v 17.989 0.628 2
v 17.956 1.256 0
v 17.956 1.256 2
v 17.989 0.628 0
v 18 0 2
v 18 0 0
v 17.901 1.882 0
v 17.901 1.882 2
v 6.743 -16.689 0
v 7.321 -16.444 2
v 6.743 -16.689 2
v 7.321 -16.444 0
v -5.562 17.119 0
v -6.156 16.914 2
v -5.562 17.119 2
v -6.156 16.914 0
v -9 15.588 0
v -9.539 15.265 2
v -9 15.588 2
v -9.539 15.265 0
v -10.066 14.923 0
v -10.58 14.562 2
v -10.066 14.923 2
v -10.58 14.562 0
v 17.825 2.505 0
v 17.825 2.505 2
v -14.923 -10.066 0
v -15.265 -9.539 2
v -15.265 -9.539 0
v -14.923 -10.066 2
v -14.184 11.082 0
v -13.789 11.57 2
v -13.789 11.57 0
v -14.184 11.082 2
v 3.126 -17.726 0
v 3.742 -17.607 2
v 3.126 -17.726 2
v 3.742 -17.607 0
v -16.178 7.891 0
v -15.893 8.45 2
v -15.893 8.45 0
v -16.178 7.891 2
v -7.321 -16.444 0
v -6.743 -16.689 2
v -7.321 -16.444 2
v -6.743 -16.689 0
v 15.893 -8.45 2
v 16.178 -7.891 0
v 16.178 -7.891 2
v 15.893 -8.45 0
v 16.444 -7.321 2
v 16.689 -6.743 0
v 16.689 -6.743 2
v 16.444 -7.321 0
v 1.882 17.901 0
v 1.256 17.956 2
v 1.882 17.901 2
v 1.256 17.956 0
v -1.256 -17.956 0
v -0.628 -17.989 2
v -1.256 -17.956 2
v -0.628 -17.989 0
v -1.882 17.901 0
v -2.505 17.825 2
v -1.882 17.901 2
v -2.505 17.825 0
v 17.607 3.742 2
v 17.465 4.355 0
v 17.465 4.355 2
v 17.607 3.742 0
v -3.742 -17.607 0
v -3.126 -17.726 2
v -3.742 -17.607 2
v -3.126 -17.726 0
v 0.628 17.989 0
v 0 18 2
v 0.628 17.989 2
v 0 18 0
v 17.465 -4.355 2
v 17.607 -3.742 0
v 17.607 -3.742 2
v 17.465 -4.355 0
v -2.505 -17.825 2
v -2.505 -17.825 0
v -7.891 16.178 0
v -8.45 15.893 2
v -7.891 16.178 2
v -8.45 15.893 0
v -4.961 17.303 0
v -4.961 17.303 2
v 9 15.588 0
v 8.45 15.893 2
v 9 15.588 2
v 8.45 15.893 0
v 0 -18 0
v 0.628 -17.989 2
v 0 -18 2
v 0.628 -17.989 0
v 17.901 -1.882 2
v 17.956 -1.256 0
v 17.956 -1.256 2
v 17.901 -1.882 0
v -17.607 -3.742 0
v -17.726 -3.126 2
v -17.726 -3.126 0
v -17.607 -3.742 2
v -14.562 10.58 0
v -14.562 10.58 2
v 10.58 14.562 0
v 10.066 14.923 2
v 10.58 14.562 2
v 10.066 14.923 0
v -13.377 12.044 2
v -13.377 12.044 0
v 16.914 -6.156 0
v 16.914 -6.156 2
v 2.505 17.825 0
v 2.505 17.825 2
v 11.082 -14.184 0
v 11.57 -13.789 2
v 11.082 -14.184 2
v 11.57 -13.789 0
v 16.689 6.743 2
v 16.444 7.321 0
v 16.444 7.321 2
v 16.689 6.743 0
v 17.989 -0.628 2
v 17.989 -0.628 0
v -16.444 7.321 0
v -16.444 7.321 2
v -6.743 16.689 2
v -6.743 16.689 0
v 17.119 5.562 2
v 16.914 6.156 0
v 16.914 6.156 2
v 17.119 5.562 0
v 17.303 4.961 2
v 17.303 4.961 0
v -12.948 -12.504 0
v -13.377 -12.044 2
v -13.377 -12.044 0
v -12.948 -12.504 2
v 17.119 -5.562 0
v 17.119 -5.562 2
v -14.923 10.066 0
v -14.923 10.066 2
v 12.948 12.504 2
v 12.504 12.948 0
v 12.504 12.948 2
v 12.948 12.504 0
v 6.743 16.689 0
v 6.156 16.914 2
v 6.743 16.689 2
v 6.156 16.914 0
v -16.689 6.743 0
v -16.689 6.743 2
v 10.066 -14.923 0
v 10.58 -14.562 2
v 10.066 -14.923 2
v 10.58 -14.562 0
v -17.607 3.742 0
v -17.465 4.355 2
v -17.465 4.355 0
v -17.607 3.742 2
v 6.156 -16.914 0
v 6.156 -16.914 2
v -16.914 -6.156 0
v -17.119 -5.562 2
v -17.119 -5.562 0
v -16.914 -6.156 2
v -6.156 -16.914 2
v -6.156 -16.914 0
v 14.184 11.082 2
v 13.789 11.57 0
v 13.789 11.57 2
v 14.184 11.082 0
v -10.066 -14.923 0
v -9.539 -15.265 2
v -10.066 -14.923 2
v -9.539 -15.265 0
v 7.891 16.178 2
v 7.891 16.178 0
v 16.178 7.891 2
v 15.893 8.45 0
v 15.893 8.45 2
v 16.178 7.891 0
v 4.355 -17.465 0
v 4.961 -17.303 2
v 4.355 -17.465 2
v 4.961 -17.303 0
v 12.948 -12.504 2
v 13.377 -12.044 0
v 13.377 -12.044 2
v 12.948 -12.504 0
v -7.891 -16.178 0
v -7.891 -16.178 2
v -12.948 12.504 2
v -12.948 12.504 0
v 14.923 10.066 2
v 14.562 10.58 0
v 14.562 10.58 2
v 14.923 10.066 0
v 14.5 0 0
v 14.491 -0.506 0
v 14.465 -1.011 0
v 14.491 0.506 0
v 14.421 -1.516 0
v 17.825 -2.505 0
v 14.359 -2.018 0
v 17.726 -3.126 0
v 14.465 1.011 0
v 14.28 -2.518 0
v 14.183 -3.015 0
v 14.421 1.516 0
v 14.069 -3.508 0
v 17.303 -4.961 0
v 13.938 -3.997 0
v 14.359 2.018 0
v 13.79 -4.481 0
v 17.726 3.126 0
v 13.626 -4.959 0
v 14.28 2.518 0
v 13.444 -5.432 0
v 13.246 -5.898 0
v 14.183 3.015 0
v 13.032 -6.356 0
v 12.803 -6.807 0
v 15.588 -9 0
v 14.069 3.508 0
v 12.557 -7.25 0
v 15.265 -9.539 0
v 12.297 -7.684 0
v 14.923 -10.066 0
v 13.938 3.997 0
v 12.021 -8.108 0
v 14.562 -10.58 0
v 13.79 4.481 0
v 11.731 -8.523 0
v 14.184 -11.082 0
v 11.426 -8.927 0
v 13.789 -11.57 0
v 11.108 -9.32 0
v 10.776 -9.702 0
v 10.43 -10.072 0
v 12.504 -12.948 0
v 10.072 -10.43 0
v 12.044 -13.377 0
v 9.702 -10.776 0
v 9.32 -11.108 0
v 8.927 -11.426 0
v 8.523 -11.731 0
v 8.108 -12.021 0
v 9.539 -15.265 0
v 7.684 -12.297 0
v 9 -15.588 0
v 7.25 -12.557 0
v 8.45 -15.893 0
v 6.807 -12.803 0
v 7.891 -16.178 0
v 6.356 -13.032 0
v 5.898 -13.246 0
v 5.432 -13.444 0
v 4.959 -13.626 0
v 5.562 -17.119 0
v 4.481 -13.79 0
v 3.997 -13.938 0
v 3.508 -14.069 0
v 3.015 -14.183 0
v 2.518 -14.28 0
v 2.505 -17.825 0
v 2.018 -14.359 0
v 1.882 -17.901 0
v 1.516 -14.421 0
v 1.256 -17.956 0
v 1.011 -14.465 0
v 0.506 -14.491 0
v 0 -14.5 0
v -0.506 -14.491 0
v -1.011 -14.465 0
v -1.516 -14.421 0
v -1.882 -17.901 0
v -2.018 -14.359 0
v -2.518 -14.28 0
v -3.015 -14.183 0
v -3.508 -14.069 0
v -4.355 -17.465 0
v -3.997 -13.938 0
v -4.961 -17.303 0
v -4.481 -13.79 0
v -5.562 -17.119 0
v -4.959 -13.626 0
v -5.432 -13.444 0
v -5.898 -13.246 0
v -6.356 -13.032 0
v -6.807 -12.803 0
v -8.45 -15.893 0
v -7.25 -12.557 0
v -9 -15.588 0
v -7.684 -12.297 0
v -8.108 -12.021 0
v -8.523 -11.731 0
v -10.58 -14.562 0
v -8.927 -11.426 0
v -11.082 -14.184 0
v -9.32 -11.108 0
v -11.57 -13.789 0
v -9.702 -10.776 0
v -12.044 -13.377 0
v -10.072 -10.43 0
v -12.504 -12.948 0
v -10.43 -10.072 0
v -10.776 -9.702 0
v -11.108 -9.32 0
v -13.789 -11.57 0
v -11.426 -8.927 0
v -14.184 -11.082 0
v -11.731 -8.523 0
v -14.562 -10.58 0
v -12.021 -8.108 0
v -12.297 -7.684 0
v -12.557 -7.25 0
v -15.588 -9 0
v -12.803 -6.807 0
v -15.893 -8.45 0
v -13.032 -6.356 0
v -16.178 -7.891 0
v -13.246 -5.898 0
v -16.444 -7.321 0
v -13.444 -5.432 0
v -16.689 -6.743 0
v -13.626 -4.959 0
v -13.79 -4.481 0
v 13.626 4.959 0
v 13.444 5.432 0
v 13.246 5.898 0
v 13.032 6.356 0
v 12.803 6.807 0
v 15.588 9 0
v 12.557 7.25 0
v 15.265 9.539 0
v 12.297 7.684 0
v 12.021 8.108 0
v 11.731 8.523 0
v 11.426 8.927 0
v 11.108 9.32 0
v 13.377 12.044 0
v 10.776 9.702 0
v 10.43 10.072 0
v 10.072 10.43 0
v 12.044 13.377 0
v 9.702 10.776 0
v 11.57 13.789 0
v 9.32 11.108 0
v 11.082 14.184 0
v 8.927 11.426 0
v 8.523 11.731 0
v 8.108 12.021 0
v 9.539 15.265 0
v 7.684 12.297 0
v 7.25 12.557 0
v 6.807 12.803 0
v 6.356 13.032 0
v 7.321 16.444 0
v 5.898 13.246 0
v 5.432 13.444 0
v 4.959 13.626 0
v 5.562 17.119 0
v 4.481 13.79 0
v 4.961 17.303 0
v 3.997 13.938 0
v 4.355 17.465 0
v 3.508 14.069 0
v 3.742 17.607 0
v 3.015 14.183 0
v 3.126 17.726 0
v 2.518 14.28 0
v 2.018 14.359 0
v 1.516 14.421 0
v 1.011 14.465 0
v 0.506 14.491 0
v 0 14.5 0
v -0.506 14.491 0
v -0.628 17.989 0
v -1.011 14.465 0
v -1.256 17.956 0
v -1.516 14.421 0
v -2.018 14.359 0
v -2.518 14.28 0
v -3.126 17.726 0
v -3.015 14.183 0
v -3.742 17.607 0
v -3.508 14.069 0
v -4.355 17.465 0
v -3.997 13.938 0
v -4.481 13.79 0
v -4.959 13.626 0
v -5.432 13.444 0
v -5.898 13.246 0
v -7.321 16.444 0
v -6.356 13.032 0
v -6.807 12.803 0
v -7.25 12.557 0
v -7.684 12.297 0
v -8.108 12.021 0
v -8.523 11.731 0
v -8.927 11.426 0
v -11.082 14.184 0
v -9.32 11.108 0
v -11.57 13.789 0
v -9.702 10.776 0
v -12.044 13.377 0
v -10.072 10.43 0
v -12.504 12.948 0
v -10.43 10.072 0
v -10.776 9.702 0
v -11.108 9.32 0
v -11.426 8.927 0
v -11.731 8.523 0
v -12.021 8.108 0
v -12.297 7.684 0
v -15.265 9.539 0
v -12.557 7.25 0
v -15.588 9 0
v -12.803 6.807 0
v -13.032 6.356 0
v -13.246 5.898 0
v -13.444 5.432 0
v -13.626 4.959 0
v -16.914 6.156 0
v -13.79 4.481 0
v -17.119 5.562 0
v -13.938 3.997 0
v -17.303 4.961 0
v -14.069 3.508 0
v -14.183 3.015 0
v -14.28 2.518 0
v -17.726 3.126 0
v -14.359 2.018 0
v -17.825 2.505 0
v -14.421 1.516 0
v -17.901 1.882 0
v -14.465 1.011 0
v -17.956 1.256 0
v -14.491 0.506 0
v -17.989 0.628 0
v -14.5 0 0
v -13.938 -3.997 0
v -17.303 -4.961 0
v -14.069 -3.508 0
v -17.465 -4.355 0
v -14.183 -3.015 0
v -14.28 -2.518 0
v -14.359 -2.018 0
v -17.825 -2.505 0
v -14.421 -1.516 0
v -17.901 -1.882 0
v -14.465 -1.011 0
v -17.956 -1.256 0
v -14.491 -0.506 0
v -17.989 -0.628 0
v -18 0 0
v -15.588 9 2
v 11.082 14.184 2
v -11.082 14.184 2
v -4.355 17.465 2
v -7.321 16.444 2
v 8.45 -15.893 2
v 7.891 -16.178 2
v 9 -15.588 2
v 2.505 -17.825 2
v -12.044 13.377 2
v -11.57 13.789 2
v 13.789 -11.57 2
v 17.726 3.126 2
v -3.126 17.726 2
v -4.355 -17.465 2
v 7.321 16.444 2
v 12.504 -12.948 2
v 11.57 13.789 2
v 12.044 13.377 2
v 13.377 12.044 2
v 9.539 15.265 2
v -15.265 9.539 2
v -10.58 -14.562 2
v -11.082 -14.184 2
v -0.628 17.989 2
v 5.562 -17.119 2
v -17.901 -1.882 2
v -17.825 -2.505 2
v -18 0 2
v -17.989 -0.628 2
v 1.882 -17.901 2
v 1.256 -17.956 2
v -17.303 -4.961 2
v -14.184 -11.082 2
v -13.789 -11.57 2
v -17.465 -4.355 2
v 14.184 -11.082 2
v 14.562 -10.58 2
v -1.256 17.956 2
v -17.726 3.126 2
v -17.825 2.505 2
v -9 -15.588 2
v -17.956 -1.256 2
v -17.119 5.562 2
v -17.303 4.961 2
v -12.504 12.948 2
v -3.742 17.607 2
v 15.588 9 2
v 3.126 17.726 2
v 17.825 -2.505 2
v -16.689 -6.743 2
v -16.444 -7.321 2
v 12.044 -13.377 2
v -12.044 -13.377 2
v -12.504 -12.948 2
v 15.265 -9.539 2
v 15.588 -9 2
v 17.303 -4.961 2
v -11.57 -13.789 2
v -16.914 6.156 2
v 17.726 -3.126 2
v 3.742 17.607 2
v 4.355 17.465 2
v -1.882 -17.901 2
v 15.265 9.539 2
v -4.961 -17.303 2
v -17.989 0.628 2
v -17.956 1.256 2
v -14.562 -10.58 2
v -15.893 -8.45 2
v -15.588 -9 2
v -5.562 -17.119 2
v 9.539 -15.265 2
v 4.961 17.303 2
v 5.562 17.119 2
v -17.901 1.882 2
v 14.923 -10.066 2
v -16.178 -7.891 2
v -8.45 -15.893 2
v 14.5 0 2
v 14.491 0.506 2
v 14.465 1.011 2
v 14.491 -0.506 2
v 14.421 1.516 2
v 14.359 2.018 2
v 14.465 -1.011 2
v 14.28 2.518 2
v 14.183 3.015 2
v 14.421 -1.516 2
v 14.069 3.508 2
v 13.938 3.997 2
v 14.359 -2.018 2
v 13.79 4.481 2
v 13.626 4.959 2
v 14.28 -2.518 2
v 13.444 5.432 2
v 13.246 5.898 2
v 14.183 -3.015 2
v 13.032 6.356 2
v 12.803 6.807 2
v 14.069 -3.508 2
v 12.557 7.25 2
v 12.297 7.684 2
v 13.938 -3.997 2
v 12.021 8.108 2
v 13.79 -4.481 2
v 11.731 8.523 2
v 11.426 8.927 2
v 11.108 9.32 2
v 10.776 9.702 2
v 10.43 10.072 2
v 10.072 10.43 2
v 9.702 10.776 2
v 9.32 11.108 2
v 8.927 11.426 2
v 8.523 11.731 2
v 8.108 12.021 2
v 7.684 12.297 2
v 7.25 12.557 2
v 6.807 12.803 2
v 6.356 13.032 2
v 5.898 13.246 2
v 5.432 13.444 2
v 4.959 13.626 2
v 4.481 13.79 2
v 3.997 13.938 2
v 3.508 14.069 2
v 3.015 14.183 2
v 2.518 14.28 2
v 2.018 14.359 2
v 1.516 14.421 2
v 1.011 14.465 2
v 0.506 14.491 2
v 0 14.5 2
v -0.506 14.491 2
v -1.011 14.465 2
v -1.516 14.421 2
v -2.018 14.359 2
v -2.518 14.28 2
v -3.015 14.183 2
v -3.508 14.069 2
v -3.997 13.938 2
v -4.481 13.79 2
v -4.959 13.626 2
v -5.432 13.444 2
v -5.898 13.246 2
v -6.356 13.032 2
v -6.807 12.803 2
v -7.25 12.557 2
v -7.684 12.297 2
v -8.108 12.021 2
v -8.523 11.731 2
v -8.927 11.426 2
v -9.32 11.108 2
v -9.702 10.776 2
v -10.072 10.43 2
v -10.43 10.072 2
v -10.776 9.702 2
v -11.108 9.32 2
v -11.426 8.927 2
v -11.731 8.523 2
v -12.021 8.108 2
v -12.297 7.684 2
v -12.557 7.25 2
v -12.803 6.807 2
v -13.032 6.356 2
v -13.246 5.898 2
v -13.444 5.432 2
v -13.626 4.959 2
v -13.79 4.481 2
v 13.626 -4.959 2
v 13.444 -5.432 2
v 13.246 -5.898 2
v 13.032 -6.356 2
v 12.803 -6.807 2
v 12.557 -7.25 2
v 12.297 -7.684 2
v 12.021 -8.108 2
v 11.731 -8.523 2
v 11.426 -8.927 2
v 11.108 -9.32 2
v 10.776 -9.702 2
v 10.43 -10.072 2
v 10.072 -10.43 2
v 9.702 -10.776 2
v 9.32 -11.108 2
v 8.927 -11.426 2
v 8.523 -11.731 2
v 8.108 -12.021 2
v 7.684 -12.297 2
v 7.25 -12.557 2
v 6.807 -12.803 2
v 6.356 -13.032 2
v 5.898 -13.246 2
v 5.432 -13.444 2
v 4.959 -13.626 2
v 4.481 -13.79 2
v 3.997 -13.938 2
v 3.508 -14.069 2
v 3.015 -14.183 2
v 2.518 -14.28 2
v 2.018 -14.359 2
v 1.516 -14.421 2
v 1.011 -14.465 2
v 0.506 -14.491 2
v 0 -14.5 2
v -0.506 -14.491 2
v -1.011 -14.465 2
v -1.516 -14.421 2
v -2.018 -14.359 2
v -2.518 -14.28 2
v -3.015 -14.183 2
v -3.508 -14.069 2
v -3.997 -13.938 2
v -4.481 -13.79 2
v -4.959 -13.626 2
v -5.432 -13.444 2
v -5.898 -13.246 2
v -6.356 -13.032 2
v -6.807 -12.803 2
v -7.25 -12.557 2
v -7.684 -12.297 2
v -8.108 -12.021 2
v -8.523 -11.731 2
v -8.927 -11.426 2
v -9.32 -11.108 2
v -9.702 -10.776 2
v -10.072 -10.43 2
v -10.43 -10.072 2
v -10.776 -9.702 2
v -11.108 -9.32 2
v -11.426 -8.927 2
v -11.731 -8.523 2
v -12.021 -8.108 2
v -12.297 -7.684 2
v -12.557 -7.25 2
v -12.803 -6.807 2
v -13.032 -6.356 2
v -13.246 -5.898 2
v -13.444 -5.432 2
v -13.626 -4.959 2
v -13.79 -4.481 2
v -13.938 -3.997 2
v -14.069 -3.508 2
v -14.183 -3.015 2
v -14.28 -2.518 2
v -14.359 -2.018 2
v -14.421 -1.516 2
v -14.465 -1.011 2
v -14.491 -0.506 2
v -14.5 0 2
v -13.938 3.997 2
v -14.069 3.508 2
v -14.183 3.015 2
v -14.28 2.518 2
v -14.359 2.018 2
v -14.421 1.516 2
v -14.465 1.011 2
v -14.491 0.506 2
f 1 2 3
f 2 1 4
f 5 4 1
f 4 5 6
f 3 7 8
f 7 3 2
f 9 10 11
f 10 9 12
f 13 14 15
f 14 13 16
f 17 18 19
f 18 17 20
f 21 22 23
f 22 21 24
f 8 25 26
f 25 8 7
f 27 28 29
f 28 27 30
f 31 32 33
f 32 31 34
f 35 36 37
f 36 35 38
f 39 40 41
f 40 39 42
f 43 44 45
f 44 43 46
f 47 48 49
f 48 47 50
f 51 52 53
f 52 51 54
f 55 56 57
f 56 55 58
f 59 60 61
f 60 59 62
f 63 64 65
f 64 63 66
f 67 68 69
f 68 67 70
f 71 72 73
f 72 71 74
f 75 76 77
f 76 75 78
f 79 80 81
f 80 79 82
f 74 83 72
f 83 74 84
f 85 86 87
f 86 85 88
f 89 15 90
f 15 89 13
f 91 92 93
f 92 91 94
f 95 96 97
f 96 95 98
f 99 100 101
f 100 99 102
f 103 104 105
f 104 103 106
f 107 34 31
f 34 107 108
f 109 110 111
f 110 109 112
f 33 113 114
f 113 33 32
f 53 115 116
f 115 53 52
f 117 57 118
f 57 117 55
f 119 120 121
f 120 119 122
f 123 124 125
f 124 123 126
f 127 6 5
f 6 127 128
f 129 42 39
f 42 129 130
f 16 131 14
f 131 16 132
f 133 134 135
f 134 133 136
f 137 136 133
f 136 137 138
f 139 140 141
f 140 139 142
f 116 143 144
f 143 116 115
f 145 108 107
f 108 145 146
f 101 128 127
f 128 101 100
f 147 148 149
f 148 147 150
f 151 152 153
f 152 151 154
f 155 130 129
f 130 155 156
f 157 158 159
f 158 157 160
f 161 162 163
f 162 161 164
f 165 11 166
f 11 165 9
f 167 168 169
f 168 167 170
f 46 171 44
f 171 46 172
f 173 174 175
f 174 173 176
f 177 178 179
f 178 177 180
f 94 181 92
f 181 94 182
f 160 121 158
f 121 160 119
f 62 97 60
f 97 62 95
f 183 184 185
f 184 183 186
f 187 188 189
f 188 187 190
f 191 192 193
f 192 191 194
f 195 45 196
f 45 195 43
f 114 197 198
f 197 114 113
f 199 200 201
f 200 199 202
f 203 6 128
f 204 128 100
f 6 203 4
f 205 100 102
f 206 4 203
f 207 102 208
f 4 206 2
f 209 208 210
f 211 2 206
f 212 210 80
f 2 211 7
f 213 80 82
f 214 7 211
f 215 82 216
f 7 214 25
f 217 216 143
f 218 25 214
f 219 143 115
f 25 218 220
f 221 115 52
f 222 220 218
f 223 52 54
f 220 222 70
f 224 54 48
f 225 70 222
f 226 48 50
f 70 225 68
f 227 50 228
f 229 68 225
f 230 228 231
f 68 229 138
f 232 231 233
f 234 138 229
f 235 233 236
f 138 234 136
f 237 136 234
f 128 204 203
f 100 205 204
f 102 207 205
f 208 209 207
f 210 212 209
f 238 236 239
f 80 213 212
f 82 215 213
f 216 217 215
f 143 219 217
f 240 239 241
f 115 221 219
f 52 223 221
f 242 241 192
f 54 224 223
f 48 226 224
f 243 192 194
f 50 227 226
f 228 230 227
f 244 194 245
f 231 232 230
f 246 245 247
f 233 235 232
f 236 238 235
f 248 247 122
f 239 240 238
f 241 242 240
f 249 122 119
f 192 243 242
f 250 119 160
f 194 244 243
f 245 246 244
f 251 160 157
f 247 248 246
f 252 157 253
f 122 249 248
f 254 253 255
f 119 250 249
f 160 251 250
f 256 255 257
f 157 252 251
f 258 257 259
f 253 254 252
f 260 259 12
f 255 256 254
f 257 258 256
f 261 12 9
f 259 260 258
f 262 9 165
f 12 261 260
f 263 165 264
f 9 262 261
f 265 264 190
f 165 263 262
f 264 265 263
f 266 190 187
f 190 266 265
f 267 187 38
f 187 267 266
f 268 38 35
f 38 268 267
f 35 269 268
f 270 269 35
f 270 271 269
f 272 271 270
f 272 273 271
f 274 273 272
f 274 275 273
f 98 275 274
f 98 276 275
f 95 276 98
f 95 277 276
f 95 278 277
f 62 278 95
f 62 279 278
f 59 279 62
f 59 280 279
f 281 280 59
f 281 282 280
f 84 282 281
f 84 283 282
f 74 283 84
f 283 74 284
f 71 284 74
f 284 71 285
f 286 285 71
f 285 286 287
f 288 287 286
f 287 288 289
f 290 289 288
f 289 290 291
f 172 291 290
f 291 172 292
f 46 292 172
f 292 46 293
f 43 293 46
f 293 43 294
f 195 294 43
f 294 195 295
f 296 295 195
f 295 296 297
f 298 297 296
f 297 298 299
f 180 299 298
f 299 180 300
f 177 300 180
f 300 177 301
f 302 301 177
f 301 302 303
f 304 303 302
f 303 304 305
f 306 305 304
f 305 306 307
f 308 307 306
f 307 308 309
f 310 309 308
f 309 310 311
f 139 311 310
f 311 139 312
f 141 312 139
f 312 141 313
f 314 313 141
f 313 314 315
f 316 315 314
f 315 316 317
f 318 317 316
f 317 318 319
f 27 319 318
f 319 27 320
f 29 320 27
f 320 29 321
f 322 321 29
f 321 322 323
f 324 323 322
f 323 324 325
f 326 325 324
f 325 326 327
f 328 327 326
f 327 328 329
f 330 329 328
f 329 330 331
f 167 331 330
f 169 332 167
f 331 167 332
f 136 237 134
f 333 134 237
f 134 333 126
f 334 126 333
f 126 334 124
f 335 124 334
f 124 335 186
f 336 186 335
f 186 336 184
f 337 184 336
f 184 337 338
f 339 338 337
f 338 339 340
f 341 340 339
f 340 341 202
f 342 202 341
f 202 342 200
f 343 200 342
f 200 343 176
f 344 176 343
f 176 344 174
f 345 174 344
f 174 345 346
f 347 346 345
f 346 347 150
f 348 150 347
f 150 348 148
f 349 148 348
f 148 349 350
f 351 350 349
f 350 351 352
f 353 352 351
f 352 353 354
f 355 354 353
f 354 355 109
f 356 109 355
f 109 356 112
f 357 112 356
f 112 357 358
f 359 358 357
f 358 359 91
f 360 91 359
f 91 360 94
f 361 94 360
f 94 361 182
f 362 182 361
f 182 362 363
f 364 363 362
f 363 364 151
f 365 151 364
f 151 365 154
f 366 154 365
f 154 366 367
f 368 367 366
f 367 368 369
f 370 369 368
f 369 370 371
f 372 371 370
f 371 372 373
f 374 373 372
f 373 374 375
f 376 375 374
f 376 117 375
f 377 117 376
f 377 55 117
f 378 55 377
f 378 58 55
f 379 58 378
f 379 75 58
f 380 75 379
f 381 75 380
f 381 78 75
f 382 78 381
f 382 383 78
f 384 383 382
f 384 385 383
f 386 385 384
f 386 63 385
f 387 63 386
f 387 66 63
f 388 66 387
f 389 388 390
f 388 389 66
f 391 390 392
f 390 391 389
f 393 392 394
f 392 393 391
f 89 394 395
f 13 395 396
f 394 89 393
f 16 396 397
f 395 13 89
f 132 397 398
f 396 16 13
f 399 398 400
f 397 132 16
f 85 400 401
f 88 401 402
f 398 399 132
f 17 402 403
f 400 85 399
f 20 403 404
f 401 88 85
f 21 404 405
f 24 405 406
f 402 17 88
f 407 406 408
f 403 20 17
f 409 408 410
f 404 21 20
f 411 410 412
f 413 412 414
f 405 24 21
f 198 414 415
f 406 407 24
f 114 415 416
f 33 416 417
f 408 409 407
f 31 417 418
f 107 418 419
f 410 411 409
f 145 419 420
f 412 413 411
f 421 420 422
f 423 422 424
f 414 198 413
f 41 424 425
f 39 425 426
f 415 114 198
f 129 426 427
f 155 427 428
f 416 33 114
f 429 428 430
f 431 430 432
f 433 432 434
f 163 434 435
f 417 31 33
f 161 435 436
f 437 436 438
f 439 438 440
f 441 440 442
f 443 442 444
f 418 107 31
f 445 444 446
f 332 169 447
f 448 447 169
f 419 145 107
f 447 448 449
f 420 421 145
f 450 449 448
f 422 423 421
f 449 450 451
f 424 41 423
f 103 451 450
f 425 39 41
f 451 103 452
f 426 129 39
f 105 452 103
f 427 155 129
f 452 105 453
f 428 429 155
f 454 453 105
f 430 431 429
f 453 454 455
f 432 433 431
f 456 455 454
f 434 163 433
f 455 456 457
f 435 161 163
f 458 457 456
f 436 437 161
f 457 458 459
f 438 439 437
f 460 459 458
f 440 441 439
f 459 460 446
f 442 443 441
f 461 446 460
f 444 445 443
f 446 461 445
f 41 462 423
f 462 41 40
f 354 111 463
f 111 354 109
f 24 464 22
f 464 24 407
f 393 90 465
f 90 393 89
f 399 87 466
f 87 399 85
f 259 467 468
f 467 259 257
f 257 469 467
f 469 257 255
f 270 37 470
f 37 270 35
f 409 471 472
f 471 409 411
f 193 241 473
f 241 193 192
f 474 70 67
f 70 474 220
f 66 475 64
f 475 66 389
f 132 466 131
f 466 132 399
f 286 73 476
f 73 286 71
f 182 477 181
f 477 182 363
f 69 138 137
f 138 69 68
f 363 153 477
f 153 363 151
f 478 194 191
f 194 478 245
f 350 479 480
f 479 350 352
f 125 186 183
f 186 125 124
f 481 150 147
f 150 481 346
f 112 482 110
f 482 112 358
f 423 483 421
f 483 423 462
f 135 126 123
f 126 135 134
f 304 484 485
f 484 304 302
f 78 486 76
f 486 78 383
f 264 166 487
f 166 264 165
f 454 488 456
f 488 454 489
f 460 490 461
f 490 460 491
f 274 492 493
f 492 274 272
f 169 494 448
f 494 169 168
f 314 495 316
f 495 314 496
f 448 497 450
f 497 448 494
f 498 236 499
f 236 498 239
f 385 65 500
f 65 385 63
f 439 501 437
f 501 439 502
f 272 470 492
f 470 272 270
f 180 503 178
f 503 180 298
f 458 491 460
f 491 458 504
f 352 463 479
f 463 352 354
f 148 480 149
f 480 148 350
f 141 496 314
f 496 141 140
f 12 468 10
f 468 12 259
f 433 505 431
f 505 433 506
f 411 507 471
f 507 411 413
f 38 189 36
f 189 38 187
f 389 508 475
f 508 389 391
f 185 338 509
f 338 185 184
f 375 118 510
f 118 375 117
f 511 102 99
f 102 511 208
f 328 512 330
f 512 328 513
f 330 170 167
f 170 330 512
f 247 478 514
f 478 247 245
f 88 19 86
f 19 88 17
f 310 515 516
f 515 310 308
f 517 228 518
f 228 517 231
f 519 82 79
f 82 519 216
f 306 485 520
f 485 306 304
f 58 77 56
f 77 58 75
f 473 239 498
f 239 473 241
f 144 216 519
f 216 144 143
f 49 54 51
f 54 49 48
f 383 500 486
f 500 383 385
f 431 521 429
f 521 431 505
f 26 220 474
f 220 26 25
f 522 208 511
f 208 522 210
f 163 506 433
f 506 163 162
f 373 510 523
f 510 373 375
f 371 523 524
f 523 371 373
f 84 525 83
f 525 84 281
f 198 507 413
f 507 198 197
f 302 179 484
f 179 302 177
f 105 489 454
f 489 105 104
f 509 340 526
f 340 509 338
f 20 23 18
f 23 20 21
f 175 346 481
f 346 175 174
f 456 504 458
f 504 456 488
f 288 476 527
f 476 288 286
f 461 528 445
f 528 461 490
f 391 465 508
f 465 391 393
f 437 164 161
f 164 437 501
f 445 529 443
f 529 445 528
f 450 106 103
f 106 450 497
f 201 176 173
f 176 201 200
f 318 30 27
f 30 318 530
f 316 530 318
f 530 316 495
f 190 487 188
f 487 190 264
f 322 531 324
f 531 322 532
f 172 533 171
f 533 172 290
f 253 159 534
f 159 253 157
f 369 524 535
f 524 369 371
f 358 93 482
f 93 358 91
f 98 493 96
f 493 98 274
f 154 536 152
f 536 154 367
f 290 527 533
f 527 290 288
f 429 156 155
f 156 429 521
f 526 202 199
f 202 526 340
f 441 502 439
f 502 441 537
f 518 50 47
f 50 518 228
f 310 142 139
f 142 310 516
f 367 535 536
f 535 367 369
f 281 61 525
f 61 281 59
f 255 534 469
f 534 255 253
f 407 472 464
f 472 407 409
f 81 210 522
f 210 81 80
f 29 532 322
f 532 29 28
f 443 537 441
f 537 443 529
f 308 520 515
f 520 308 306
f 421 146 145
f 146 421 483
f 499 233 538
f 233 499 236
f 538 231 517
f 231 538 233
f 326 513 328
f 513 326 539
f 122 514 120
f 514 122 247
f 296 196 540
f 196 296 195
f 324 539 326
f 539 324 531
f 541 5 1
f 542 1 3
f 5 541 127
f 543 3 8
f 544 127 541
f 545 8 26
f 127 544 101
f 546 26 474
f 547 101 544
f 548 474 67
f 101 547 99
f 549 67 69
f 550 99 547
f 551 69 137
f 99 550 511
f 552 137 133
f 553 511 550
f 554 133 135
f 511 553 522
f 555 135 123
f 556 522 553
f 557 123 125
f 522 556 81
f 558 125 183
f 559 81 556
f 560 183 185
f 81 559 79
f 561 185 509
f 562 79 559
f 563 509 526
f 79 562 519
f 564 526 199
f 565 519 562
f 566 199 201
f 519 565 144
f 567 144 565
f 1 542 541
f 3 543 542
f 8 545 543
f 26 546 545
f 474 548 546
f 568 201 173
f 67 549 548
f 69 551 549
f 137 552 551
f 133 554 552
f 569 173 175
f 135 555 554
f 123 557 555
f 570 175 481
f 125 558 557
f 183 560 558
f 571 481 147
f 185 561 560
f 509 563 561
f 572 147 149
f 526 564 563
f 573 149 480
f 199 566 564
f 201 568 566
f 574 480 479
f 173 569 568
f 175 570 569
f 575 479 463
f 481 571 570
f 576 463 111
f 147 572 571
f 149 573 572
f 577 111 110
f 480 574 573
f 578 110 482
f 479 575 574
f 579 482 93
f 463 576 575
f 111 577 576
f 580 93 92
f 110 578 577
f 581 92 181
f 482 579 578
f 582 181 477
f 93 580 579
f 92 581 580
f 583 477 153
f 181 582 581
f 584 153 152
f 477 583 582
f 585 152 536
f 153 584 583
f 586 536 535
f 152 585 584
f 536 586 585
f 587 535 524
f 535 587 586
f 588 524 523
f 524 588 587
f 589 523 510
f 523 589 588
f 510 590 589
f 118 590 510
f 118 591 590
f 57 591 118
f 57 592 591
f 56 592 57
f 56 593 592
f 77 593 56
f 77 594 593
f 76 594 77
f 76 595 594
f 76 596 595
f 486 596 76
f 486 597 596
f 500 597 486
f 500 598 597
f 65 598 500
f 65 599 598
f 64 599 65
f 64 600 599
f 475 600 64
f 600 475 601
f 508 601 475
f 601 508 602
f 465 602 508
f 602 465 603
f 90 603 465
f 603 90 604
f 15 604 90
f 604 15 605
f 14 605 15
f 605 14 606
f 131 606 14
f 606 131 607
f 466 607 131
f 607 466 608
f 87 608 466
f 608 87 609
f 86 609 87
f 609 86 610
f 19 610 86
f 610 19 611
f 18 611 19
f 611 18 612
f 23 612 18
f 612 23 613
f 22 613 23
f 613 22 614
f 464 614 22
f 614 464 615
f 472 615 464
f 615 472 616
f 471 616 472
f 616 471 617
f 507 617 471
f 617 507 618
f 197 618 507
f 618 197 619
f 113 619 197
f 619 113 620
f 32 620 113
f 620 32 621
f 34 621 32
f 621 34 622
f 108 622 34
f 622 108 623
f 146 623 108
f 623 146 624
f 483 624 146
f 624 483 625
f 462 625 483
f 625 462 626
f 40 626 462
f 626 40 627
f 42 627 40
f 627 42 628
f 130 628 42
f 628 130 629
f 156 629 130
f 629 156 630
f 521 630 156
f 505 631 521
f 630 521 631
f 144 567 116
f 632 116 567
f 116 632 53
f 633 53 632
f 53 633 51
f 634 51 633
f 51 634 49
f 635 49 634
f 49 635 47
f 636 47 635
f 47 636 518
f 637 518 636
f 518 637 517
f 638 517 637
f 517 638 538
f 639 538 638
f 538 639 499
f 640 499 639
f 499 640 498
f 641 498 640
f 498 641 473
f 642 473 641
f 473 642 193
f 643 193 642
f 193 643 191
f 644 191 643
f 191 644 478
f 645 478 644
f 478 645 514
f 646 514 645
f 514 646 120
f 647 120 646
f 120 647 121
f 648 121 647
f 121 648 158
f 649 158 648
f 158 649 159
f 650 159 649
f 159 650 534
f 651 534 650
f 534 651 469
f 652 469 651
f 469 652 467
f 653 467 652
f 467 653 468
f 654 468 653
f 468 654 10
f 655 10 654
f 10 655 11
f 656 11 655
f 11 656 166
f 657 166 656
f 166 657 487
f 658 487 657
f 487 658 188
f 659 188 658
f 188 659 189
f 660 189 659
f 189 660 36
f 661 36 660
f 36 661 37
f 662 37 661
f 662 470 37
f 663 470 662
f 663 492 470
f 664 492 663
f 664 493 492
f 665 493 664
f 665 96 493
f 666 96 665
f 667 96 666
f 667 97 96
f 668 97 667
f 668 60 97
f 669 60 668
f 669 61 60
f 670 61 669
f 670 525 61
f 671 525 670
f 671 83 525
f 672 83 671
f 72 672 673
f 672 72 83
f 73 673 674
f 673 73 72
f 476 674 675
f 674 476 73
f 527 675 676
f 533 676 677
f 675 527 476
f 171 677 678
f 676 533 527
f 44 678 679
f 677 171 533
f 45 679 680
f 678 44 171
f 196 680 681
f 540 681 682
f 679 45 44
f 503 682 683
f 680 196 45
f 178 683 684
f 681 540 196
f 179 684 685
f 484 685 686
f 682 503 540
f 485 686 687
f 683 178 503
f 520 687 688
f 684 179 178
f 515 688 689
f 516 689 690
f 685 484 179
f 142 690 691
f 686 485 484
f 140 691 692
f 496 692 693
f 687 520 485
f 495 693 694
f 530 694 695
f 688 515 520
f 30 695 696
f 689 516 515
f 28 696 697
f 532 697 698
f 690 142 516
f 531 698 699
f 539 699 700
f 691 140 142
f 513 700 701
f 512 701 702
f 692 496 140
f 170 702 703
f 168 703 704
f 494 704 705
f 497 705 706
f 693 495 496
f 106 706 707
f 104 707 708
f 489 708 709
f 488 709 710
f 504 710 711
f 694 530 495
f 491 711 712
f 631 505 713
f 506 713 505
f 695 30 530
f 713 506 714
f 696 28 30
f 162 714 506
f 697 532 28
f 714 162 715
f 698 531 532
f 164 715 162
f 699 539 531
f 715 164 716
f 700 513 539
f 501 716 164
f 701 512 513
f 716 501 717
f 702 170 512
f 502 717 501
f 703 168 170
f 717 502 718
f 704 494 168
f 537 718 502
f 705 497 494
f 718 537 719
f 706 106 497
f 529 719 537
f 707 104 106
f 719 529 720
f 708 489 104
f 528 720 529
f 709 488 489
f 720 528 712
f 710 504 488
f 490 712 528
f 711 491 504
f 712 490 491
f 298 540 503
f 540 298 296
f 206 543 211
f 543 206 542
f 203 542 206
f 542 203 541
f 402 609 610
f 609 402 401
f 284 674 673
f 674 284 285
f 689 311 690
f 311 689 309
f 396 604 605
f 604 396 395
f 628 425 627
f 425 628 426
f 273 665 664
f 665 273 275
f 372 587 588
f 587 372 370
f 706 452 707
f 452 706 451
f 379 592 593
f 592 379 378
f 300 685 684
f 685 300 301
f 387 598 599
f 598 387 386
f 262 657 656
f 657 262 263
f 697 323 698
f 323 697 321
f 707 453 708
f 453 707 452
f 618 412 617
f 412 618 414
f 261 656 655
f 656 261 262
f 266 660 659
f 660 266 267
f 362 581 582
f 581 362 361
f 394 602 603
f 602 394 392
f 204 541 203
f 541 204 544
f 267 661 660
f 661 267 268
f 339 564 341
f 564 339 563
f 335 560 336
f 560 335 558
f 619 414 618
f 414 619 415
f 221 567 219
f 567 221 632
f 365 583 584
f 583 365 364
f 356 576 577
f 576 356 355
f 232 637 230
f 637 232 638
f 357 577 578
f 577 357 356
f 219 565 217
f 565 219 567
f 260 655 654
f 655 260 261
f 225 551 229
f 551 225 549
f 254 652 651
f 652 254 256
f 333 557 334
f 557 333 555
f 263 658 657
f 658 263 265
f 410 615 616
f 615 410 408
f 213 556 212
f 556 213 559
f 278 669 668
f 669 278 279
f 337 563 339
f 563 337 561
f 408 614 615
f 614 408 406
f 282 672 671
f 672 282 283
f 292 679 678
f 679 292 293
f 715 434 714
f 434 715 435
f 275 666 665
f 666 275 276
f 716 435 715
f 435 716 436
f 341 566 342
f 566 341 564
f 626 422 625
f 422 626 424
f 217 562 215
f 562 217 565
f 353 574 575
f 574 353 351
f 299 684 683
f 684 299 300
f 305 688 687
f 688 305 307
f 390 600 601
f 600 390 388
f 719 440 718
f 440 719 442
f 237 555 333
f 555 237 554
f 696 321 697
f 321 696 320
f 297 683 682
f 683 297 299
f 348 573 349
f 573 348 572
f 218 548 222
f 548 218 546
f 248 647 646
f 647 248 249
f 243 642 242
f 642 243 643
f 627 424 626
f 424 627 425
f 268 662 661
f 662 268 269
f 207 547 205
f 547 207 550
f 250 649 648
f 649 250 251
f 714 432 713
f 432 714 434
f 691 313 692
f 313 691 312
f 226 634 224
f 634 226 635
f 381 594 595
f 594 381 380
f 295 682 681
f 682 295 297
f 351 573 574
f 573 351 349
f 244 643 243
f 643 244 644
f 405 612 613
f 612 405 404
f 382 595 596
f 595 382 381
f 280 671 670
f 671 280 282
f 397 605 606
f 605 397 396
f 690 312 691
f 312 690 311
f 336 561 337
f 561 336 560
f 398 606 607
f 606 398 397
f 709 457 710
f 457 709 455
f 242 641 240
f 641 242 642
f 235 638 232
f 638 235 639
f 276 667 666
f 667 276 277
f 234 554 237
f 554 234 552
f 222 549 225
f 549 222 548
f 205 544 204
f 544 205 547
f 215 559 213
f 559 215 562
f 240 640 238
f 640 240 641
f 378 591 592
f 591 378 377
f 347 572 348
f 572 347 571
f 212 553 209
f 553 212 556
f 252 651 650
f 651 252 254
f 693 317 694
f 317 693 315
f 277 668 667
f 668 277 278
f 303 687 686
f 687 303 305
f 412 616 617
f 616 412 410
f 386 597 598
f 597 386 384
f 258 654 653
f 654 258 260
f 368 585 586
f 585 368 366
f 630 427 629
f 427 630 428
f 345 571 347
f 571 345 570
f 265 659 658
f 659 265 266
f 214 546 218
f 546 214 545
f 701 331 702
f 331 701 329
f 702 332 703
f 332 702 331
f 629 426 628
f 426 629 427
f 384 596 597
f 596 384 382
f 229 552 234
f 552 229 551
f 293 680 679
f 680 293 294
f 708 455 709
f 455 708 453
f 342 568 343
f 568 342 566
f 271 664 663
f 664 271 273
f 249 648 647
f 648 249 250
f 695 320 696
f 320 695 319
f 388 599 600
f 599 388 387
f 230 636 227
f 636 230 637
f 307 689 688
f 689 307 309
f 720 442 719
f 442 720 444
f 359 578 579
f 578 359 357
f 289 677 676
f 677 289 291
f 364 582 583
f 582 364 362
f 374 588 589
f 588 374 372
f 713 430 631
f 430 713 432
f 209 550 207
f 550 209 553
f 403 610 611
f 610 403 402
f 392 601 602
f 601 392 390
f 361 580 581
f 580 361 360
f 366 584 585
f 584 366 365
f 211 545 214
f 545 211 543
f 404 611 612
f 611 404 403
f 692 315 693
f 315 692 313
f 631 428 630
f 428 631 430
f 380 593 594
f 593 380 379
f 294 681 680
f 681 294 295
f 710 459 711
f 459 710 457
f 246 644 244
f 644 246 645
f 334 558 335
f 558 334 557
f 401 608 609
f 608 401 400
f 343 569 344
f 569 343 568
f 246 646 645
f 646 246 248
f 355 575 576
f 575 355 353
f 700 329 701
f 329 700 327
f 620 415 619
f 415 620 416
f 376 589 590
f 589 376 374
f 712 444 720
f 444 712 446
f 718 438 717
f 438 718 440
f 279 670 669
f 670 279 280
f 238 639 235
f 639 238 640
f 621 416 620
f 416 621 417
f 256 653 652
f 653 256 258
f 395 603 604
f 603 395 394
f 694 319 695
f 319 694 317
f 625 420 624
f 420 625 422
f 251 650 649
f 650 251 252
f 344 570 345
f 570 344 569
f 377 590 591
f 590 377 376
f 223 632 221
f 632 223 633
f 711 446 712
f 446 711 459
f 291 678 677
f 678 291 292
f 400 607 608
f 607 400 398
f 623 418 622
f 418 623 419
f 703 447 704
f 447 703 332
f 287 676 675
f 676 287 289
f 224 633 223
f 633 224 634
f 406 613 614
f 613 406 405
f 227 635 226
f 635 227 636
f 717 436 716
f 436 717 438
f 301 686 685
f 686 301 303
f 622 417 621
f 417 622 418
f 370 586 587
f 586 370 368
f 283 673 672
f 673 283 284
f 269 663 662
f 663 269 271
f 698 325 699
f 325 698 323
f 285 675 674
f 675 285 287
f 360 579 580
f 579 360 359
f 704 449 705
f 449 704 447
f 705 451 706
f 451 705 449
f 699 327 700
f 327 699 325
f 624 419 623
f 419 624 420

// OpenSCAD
// file: legacy_params.scad
// Parameters that only the superseded parts still use.
//
// They were removed from ../params.scad when the designs that needed
// them were retired, so that the live file describes exactly one
// build and nothing else. Kept here so these files still open and
// render for reference. DO NOT PRINT ANYTHING FROM THIS DIRECTORY -
// see README.md.
include <../params.scad>

// The module was thought to sit 1.5 mm down in a locating recess.
mm_recess_d       = 1.5;
// The water band as it was believed to be before the module was
// measured and MIST-MAKER.md was written: 41-50 mm, not 20-75.
water_start       = 41;
water_best_lo     = 42;
water_best_hi     = 45;
water_struggle    = 50;
plain_ml          = 445;

// Internal Mariotte standpipe, hung from the lid beside the module.
// Impossible once the module turned out to be 45 mm TALL as well as
// Ø45: a pipe alongside it needs a Ø80 bore.
sp_bore           = 28.6;
sp_wall           = 1.6;
sp_od             = sp_bore + 2*sp_wall;
sp_offset         = 16;
sp_socket_depth   = 18;

// TPU neck washer, replaced by the captured bottle cap's own liner.
gasket_od         = 36;
gasket_id         = 29;
gasket_t          = 2.0;

// Fog port as a hole in a lid, before the fan and nozzle existed.
fog_port_d        = 25;
fog_port_z        = 70;
fog_boss_len      = 10;
fog_boss_wall     = 2.0;
fog_collar_h      = 6.0;

// Cut-PET-bottle vessel and its lid.
vessel_od         = 90;
vessel_cut_h      = 80;
vessel_lid        = 1;
skirt_h           = 14;
skirt_wall        = 2.0;
skirt_slop        = 5;
plate_t           = 3.0;
lip_h             = 6.0;
vl_vent_d         = 13;
vl_vent_n         = 4;

// Cable notch in the rim, replaced by a bung hole in the lid: a
// notch leaks fog down the outside of the chamber.
cable_notch_w     = mm_cable_od + 3;
cable_notch_h     = 6;

// Printed cap-chamber alternative.
cc_id    = 58;
cc_wall  = 1.6;
cc_od    = cc_id + 2*cc_wall;
cc_water = mm_module_h + 25;
cc_head  = 40;
cc_h     = cc_water + cc_head;
cc_flange = 3;

// Lid vents and placement, from before the fan/nozzle pair existed.
vent_d            = 12;
vent_n            = 5;
water_level       = water_hold;
lid_pos_z         = ch_floor + ch_inner_h;
lid_pos_xy        = 0;
fog_headspace_old = 42;

// cap_chamber.scad selects its part with this.
PART              = "cup";
// main file
// TPU (XFlex) washer. The bottle's support ring presses onto this,
// sealing the neck so air can only enter via the standpipe bore.
include <legacy_params.scad>
difference() {
    cylinder(d = gasket_od, h = gasket_t);
    translate([0,0,-eps]) cylinder(d = gasket_id, h = gasket_t + 2*eps);
}
